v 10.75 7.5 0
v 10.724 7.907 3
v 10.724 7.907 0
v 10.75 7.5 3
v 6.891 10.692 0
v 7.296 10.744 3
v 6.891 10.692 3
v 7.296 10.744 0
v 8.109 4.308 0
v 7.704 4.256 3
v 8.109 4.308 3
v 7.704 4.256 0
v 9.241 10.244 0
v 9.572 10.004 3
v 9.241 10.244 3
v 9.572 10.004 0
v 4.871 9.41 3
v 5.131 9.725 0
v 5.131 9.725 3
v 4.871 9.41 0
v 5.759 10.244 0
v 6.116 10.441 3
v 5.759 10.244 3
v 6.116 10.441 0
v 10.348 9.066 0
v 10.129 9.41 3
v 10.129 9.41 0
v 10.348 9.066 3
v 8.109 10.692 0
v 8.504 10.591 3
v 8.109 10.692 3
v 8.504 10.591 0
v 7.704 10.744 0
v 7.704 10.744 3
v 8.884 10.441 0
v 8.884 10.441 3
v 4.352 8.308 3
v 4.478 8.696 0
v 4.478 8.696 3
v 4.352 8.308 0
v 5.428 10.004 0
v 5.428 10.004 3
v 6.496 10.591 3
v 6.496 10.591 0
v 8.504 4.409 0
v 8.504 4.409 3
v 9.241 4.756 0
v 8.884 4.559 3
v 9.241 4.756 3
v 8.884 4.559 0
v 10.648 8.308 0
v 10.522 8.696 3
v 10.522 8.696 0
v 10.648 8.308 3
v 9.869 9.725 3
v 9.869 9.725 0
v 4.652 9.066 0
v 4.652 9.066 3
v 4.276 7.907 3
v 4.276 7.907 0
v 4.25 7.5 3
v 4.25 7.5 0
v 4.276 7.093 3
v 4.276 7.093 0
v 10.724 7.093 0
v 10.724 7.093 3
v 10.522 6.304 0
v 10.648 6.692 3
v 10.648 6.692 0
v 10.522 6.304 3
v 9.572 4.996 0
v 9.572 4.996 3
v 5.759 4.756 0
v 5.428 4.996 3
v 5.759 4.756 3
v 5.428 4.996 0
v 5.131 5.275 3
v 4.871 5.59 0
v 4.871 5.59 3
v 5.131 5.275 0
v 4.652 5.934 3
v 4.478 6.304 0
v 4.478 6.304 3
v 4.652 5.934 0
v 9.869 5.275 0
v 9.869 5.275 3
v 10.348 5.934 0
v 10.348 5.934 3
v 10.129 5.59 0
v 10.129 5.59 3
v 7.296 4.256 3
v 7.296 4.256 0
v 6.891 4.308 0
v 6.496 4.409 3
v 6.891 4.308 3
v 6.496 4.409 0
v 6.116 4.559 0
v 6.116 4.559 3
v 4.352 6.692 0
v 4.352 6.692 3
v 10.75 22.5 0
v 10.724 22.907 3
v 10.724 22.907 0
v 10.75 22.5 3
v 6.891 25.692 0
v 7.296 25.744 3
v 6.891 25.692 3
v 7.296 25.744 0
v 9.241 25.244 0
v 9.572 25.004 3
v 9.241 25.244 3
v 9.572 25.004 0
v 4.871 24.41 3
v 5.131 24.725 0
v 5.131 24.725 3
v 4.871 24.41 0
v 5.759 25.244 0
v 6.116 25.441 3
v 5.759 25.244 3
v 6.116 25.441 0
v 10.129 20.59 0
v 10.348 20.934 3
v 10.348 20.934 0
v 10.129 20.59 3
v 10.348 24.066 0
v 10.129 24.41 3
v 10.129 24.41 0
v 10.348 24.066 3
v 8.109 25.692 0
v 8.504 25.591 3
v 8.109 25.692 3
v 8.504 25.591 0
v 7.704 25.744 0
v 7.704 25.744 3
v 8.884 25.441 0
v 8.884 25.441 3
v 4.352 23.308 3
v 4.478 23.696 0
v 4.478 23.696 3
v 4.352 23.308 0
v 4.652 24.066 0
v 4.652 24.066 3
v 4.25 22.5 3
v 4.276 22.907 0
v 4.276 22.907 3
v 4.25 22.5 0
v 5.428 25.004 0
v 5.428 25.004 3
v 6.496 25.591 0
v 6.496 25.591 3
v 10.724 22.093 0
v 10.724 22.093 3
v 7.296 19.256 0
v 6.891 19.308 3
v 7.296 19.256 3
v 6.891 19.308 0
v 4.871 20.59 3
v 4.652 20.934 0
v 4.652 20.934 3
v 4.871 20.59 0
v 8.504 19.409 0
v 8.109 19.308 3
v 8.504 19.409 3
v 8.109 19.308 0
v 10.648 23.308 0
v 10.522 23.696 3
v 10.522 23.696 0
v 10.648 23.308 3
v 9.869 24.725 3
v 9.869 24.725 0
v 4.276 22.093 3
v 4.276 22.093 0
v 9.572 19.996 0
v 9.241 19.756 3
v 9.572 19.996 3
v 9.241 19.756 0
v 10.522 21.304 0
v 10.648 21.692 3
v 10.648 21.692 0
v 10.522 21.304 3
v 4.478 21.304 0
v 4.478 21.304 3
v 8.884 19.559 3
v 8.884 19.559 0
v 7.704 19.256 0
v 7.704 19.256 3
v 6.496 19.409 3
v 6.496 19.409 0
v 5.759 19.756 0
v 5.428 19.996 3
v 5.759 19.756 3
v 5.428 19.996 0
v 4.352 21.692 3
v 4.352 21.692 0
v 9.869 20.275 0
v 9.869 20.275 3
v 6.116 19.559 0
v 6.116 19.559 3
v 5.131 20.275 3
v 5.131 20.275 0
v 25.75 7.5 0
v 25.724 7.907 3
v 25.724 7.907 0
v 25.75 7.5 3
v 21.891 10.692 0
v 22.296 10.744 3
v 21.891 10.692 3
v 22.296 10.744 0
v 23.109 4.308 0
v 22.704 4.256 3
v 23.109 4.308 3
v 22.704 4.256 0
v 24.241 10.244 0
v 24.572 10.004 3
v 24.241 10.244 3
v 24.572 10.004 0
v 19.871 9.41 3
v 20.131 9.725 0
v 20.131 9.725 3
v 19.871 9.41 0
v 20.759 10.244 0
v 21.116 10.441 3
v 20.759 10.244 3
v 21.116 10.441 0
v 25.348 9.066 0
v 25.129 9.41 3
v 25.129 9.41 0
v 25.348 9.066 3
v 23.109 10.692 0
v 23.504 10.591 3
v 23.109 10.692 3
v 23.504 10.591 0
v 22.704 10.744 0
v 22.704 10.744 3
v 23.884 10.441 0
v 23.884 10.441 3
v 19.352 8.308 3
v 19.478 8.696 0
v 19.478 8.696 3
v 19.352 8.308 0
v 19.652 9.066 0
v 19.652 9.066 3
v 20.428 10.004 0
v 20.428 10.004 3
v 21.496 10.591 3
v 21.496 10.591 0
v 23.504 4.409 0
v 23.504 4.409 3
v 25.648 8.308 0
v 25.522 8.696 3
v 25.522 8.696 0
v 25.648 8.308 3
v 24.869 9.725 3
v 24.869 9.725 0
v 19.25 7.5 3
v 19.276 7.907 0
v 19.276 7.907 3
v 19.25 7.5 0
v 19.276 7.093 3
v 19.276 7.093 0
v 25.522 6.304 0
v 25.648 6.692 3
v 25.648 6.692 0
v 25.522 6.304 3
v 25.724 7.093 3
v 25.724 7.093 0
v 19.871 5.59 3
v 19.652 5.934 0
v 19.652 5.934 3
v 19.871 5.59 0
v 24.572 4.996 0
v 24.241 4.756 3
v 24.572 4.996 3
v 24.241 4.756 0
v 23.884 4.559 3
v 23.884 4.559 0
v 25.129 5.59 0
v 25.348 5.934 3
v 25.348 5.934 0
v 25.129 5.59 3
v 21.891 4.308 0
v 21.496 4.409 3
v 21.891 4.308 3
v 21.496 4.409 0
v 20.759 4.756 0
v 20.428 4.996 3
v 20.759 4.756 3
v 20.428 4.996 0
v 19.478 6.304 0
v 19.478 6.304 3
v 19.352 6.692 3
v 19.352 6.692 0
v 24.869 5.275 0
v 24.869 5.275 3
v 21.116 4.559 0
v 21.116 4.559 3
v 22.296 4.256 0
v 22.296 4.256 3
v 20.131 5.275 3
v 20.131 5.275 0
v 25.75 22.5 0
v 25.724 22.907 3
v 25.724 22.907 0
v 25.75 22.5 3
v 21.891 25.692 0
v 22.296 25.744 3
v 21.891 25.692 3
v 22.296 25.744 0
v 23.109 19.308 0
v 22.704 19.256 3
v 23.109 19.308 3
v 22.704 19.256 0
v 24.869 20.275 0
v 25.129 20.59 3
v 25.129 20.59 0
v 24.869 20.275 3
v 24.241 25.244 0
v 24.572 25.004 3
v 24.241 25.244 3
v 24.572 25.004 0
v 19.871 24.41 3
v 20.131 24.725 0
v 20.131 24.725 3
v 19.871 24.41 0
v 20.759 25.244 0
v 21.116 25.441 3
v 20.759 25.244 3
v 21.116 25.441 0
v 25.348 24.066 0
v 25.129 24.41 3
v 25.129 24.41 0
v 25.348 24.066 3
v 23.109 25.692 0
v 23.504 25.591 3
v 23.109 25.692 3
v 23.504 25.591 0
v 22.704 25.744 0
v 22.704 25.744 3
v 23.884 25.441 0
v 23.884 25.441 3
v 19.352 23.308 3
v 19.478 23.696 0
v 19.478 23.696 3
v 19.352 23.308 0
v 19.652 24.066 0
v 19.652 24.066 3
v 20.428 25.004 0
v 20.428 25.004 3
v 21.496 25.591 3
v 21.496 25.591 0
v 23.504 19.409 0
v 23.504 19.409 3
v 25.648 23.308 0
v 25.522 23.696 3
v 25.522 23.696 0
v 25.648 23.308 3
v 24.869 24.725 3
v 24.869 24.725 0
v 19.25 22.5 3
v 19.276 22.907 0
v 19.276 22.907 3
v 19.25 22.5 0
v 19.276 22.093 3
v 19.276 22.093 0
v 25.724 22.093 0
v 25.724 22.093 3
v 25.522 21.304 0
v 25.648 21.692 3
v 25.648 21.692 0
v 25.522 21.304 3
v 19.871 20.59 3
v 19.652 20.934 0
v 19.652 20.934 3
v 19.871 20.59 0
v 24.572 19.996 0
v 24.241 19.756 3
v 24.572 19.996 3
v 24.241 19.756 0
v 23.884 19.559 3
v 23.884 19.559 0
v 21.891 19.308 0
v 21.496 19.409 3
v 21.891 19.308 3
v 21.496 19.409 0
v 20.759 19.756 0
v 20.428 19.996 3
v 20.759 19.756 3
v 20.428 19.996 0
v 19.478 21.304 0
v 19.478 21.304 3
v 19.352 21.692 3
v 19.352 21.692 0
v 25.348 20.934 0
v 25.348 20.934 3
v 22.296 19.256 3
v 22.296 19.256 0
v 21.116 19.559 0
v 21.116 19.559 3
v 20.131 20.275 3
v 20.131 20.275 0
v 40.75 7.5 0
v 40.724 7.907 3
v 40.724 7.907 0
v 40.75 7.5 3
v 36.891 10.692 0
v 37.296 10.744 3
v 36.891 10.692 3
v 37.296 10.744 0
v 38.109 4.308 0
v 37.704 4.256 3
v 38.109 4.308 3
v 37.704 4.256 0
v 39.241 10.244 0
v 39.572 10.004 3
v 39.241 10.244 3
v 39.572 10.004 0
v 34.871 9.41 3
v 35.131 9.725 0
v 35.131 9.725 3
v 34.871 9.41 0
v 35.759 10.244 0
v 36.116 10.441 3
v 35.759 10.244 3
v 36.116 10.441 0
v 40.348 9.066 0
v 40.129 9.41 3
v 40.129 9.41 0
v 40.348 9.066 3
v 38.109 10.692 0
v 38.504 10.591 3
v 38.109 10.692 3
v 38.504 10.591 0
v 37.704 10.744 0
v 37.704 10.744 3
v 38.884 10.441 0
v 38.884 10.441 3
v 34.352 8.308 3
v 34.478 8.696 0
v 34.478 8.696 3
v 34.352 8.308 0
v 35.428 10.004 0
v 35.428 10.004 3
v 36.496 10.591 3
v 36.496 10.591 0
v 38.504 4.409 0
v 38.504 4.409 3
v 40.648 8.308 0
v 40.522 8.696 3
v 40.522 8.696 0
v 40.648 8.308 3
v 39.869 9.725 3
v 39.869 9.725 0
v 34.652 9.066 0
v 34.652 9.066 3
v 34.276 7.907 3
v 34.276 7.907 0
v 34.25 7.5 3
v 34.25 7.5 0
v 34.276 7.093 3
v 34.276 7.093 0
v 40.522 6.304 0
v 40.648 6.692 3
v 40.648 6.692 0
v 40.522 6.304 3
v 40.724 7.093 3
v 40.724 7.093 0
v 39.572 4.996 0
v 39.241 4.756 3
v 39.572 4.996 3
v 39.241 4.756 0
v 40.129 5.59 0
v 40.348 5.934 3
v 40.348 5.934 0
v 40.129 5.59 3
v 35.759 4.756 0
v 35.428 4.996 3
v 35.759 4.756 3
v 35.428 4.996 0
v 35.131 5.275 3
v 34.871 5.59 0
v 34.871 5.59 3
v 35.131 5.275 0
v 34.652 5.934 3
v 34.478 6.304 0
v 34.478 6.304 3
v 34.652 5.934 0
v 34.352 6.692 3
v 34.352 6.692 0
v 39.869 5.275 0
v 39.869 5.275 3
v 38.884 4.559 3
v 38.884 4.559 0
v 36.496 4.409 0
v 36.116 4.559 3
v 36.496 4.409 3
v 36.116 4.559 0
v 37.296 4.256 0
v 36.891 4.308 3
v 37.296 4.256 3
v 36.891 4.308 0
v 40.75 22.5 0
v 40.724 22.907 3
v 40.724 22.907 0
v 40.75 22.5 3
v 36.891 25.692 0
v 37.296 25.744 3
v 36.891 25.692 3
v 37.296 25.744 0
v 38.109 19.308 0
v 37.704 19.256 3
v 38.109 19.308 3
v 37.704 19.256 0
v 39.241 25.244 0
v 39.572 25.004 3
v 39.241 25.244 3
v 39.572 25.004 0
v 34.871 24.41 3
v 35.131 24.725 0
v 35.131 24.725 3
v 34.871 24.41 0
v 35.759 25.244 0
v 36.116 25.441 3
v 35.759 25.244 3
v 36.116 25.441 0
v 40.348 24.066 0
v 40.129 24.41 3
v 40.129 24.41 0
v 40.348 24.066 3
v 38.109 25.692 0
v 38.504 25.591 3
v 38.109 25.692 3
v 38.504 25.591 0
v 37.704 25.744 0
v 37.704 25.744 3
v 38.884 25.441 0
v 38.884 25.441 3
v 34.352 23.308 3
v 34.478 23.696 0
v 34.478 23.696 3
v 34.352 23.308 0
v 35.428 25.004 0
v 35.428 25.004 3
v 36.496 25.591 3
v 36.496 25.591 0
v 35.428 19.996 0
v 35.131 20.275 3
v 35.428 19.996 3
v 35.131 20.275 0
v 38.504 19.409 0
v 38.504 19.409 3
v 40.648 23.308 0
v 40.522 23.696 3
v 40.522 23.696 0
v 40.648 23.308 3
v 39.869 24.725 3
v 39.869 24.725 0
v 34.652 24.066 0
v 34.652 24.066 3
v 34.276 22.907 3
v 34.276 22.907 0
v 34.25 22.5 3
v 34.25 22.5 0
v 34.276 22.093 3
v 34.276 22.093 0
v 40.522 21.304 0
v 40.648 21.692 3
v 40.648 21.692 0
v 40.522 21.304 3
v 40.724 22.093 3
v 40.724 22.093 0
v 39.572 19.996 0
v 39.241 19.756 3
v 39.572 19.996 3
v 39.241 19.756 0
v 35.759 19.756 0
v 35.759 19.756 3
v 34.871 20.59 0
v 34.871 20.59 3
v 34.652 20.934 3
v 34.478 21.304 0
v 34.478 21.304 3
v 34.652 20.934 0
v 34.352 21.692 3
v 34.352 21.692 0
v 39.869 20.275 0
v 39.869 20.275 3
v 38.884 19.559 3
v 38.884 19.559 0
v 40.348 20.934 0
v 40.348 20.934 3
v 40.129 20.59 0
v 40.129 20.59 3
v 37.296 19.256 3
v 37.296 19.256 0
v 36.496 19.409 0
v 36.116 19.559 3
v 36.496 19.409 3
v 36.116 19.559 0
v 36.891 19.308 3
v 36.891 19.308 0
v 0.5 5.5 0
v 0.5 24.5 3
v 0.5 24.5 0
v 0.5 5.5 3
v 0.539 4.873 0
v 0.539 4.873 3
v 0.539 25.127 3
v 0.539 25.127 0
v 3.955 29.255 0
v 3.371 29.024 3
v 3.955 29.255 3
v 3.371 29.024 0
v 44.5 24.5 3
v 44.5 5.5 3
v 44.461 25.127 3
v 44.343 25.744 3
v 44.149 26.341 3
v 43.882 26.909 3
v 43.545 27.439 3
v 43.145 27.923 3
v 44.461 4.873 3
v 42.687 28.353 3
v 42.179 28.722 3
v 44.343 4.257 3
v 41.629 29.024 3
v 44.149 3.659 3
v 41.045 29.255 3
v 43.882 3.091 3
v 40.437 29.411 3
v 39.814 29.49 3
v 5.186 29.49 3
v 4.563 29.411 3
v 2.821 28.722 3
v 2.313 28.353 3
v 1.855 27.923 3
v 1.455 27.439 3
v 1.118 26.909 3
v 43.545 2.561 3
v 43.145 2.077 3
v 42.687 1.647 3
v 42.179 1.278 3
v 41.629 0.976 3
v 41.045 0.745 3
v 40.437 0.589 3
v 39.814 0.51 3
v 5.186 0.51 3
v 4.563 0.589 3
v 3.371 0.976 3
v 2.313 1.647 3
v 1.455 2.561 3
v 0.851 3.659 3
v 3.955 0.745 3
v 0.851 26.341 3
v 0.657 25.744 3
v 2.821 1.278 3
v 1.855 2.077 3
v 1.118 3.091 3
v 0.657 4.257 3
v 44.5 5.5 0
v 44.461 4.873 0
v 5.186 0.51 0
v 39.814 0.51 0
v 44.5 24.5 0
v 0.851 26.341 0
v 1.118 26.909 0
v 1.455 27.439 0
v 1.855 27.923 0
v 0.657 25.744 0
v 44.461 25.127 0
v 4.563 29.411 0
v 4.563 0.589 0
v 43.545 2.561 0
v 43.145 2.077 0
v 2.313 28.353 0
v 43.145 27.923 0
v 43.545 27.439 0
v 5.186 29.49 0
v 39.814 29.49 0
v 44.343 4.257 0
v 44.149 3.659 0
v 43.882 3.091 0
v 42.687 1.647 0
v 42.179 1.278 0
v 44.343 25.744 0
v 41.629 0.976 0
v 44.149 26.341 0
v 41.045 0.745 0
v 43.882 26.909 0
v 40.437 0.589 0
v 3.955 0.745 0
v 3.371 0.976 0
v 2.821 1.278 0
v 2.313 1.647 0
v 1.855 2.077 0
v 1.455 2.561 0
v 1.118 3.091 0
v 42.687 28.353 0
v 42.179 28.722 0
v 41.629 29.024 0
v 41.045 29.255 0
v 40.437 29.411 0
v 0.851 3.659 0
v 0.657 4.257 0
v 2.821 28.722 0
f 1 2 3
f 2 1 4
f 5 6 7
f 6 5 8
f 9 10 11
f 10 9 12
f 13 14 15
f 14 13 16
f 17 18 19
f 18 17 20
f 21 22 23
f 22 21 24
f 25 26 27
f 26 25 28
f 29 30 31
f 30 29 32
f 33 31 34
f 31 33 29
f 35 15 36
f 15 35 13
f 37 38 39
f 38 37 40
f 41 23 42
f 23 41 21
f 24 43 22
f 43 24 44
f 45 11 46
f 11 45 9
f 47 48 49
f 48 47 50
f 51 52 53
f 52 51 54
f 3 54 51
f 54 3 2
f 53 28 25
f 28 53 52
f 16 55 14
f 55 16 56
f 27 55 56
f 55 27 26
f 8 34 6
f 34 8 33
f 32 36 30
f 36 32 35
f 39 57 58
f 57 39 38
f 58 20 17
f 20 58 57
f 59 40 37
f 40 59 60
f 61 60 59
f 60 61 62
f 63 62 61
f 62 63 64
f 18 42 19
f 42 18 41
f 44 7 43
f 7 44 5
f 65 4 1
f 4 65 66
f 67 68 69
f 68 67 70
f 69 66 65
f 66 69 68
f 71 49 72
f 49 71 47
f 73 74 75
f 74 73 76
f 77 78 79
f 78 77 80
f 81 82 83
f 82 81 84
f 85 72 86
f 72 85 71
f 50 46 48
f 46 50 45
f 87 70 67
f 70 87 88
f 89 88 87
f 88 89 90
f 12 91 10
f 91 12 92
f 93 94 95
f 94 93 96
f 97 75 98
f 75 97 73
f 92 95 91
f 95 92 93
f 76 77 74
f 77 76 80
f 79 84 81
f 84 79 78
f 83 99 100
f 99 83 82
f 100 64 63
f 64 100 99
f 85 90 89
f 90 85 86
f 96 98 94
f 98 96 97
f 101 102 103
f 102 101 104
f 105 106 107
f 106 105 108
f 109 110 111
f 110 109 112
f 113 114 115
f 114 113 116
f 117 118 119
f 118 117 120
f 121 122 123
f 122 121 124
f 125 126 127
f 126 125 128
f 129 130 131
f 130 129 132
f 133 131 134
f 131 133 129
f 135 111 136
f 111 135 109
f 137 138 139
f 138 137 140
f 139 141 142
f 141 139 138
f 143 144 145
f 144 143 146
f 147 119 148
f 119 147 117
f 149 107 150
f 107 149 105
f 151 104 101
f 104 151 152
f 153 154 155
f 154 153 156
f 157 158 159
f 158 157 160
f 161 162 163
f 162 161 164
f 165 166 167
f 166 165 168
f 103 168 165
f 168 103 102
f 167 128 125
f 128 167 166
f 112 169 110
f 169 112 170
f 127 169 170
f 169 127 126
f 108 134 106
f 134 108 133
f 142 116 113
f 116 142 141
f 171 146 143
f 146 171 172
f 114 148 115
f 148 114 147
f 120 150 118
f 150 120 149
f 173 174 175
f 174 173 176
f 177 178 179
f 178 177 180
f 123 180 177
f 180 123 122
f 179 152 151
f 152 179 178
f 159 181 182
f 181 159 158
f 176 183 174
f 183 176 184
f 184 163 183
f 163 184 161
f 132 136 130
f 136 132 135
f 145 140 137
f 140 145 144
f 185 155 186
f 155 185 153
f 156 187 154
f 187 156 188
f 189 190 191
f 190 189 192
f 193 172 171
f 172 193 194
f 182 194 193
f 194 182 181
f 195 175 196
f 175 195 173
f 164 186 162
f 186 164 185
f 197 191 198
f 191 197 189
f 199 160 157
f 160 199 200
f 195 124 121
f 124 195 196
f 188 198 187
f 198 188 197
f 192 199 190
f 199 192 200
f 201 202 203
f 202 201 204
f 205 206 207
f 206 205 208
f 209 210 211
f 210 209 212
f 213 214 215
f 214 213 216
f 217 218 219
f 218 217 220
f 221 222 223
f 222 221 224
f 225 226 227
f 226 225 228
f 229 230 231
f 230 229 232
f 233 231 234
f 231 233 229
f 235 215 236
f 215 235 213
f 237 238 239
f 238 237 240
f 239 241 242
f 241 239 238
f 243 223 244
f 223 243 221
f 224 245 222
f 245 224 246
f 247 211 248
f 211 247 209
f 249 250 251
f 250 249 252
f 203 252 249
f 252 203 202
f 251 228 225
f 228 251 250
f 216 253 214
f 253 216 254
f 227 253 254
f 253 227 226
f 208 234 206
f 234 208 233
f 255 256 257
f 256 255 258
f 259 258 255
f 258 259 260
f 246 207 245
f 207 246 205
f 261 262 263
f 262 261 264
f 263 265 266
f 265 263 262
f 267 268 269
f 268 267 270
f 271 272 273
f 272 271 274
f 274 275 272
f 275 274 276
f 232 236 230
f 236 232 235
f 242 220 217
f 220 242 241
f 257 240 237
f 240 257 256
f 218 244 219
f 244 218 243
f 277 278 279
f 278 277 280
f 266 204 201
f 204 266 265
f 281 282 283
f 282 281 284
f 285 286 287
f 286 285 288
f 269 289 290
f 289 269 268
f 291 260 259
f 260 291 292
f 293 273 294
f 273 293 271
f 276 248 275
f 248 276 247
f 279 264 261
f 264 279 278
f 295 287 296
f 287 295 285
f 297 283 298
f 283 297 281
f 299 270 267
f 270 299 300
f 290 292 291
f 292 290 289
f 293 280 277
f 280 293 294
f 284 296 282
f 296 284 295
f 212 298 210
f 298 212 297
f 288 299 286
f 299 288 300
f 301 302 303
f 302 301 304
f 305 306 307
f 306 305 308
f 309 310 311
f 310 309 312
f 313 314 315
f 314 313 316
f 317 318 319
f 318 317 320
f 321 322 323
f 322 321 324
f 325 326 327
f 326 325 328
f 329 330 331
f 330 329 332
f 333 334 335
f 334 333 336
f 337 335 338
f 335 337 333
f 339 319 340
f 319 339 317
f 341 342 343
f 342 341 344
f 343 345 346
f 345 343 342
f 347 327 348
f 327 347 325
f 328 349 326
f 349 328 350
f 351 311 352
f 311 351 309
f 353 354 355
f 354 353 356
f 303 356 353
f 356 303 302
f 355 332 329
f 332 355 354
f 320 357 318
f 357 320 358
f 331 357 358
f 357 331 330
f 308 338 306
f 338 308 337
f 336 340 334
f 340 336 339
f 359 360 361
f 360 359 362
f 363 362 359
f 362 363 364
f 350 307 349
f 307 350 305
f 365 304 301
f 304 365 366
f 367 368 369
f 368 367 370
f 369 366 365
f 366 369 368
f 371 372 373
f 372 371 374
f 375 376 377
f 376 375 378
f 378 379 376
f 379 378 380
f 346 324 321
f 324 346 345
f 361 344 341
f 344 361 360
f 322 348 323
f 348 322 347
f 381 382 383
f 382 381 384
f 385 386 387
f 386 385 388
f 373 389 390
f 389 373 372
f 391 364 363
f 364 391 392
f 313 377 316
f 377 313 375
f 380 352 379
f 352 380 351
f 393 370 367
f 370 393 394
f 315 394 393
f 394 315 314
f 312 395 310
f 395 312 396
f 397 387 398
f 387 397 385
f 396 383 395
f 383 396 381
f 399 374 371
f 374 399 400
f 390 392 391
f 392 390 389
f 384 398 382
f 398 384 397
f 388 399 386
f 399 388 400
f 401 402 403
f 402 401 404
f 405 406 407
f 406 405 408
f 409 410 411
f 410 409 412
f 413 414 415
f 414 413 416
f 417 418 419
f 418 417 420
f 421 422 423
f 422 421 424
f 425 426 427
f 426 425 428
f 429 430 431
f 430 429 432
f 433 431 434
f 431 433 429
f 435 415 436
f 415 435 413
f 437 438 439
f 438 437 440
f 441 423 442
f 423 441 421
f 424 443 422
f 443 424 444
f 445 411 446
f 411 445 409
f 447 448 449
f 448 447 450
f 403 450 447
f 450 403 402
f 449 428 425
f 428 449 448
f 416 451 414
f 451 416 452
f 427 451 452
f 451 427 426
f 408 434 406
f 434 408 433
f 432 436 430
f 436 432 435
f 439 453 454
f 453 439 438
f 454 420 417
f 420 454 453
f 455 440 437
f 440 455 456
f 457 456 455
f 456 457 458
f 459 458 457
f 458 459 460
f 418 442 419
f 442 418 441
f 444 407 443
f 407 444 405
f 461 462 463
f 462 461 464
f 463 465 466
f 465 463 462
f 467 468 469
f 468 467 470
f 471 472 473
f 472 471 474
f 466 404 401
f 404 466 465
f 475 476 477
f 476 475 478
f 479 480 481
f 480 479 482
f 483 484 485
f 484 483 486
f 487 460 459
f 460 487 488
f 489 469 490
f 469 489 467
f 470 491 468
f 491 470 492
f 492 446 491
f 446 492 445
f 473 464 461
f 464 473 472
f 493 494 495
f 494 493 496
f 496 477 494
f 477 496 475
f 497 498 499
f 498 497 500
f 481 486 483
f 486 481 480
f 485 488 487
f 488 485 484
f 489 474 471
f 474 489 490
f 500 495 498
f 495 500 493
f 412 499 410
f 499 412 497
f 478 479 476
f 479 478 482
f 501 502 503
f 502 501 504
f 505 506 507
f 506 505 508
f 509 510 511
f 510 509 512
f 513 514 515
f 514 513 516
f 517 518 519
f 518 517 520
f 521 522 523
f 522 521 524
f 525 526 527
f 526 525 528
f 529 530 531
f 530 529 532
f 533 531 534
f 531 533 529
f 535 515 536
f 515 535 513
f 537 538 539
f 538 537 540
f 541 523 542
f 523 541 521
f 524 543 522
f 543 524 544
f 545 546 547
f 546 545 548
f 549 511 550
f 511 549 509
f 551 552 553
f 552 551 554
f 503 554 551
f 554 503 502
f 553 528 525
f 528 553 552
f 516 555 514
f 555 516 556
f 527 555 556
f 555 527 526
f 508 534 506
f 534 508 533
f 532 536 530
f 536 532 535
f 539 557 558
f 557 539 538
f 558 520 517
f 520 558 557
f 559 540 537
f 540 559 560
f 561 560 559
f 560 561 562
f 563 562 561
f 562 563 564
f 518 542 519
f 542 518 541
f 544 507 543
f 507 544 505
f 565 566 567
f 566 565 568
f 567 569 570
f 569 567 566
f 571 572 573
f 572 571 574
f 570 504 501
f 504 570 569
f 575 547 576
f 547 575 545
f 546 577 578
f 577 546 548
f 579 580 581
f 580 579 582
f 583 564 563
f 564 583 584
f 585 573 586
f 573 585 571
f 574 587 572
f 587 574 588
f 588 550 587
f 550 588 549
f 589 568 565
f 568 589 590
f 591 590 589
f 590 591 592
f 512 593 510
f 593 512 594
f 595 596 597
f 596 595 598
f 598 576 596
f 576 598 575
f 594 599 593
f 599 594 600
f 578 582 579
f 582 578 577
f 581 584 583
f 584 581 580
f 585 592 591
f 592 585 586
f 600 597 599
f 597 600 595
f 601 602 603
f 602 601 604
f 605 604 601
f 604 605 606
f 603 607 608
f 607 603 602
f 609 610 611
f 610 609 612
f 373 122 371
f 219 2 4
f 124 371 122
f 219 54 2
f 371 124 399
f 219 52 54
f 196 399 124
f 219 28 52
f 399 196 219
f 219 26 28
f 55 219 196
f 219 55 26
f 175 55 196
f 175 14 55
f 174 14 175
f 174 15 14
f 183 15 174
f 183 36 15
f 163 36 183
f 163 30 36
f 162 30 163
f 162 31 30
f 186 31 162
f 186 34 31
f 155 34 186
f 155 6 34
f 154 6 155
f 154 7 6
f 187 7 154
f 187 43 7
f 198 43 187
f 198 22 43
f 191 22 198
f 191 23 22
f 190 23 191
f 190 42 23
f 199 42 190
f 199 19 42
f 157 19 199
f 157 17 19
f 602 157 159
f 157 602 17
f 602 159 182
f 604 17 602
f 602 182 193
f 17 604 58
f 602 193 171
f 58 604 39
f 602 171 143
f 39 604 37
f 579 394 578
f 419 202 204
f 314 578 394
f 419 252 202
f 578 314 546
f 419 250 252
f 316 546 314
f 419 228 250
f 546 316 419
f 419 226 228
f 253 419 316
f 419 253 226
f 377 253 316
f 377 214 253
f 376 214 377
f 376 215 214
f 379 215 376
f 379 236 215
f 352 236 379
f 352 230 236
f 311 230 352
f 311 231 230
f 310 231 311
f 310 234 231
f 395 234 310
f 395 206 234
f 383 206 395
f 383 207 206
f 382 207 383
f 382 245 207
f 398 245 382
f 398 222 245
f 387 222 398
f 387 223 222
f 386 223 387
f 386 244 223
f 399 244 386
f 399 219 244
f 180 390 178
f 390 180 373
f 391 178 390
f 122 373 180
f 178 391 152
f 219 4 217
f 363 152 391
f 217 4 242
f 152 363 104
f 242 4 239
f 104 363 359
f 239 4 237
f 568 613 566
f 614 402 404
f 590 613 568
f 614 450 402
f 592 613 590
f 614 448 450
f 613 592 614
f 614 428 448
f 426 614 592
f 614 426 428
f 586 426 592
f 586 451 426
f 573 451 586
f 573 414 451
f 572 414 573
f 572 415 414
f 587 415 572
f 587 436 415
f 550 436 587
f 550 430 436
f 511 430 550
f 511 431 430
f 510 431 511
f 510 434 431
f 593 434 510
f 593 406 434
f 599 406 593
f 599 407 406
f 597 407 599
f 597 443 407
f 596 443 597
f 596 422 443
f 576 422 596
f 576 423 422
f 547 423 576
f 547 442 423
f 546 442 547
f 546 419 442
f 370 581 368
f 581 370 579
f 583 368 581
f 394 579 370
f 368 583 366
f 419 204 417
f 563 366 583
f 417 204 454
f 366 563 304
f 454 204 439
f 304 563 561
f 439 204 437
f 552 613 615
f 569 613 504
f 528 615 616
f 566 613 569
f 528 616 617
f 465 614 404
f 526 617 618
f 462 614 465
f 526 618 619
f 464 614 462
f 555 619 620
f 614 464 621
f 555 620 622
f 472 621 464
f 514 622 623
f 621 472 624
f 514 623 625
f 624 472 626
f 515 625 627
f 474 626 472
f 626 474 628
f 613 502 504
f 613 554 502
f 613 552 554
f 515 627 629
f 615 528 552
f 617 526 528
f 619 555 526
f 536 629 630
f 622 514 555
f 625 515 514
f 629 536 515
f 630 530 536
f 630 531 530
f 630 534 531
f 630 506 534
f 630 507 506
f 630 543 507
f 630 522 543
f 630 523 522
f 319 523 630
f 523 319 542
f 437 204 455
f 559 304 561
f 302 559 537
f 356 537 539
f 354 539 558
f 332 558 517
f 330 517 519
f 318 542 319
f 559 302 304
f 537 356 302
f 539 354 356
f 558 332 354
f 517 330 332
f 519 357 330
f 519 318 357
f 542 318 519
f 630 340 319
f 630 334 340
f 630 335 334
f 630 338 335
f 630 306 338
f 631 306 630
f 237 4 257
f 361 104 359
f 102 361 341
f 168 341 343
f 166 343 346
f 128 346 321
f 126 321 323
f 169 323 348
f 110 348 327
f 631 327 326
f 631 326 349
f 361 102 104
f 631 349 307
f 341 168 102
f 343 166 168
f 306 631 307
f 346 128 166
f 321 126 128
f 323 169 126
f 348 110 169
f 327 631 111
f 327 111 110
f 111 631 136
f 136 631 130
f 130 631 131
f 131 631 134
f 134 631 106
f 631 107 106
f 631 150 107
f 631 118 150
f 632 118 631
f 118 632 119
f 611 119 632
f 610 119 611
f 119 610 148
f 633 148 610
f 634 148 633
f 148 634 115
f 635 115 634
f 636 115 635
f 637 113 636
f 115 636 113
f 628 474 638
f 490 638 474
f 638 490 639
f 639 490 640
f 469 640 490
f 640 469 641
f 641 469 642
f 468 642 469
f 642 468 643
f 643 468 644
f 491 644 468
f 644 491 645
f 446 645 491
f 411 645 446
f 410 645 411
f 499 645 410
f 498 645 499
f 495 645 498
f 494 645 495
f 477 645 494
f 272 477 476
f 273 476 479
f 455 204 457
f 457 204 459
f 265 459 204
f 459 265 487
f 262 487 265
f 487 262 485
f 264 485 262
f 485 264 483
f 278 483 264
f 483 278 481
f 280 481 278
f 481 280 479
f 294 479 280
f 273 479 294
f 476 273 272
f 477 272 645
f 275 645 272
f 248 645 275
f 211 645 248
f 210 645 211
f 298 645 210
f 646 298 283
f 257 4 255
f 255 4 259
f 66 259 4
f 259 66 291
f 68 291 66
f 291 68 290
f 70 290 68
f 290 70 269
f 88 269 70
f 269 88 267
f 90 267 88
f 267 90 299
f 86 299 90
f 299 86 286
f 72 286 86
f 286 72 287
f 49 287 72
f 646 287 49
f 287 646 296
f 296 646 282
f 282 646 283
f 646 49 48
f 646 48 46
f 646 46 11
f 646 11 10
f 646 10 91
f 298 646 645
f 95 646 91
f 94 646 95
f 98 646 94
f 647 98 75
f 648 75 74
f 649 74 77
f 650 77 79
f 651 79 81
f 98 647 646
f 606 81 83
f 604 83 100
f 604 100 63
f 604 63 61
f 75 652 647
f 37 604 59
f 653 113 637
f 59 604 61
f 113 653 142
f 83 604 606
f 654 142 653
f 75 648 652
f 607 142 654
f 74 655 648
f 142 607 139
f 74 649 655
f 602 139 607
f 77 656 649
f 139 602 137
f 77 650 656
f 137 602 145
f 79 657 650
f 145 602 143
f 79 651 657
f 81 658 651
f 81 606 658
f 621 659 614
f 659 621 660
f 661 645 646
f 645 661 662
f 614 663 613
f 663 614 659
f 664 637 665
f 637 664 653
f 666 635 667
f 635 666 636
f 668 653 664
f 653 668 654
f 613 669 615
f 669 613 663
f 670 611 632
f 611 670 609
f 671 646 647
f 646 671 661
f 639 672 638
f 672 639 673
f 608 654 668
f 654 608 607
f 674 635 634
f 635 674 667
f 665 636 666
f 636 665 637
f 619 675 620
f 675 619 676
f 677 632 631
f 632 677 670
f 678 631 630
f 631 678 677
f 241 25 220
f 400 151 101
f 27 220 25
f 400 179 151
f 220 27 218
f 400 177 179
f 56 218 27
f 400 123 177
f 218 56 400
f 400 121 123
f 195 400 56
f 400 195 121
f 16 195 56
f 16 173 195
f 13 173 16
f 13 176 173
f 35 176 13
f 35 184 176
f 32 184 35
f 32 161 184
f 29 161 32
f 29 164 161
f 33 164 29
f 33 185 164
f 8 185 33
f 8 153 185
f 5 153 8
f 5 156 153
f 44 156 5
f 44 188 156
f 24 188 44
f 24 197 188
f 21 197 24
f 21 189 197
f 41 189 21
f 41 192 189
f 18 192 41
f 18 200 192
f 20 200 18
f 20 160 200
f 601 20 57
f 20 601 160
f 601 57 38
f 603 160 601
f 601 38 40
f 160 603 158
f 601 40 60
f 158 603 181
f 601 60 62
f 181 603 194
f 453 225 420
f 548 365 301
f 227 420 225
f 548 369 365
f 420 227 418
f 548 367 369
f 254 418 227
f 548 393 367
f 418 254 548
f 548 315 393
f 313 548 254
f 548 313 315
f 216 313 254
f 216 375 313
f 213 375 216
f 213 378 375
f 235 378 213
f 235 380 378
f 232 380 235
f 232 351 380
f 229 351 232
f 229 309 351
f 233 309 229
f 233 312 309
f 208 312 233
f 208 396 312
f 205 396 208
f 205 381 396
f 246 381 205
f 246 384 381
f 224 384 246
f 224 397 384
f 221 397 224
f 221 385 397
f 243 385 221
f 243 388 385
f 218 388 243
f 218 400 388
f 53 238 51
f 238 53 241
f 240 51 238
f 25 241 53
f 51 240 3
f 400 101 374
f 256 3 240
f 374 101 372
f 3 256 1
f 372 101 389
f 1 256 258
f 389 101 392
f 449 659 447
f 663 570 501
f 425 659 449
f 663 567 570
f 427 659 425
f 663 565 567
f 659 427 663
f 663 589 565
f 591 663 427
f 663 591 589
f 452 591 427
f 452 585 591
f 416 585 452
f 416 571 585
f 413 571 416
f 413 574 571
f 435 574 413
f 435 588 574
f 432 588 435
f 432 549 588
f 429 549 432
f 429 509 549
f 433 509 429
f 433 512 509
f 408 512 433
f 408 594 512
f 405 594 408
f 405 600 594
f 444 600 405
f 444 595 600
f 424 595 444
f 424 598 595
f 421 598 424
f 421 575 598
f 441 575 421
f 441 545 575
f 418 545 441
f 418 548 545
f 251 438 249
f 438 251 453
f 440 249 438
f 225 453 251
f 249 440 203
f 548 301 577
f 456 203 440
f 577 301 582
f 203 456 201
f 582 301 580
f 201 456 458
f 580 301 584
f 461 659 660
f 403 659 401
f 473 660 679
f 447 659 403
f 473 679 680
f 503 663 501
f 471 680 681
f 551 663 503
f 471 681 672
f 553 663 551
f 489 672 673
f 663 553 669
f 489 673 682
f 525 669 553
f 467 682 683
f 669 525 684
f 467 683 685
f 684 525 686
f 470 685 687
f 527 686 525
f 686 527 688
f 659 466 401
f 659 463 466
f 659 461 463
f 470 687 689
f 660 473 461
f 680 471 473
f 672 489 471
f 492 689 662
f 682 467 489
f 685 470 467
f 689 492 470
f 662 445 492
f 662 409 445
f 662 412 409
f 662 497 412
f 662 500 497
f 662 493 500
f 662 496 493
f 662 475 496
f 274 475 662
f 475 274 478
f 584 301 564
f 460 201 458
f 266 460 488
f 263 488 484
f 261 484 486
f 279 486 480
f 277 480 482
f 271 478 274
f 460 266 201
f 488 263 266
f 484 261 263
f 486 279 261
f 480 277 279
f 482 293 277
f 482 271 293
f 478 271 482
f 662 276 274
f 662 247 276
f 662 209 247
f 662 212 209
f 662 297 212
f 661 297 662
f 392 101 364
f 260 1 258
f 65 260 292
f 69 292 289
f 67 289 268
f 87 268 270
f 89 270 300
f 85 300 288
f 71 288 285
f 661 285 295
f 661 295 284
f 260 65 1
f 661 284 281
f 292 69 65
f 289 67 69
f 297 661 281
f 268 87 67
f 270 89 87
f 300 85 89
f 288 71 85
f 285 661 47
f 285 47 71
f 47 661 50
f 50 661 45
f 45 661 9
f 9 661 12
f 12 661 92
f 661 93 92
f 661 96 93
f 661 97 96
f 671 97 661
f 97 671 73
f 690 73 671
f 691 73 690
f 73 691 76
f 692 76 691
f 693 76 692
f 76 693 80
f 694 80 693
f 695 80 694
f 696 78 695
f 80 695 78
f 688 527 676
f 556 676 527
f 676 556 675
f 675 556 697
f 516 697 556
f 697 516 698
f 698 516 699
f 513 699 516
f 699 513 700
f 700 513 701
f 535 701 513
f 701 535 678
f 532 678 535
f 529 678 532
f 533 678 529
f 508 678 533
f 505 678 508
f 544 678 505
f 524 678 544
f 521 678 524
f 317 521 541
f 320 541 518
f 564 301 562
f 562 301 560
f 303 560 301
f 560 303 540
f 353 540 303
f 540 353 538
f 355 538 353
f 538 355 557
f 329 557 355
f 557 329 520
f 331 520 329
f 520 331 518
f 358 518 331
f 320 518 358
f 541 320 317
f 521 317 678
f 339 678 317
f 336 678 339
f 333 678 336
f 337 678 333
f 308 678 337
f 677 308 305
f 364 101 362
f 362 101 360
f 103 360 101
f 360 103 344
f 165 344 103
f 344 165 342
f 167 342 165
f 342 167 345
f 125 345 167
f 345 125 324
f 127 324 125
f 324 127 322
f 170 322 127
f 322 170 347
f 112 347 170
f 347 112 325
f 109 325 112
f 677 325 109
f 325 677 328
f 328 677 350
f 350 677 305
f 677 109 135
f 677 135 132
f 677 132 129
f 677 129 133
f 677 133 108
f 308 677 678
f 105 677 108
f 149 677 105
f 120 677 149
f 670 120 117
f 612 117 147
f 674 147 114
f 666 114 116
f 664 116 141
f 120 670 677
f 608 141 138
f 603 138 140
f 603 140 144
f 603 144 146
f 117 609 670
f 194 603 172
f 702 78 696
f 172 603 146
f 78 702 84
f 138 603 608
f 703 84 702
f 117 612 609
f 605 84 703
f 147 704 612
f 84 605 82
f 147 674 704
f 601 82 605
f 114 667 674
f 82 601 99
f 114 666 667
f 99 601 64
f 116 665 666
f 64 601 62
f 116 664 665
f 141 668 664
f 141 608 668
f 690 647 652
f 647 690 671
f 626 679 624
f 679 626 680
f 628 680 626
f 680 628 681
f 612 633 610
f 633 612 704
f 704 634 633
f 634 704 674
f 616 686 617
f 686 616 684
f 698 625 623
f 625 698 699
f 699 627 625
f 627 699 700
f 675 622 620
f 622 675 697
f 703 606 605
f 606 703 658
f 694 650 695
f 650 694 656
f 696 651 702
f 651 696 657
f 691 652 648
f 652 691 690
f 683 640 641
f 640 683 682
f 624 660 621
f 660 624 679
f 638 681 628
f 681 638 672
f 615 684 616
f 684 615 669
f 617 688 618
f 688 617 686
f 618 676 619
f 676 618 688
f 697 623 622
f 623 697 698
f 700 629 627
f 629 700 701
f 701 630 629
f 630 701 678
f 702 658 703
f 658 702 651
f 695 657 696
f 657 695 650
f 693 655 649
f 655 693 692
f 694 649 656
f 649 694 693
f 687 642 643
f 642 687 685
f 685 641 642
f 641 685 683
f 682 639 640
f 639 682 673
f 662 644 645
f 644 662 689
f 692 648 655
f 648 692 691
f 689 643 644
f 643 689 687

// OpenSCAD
// Generated by SolidPython 1.1.3 on 2023-01-30 13:26:02
$fn = 50;


difference() {
	union() {
		translate(v = [22.5000000000, 15.0000000000, 0]) {
			rotate(a = [0, 0, 0]) {
				hull() {
					translate(v = [-17.0000000000, 9.5000000000, 0]) {
						rotate(a = [0, 0, 0]) {
							translate(v = [0, 0, 0]) {
								rotate(a = [0, 0, 0]) {
									cylinder(h = 3, r = 5);
								}
							}
						}
					}
					translate(v = [17.0000000000, 9.5000000000, 0]) {
						rotate(a = [0, 0, 0]) {
							translate(v = [0, 0, 0]) {
								rotate(a = [0, 0, 0]) {
									cylinder(h = 3, r = 5);
								}
							}
						}
					}
					translate(v = [-17.0000000000, -9.5000000000, 0]) {
						rotate(a = [0, 0, 0]) {
							translate(v = [0, 0, 0]) {
								rotate(a = [0, 0, 0]) {
									cylinder(h = 3, r = 5);
								}
							}
						}
					}
					translate(v = [17.0000000000, -9.5000000000, 0]) {
						rotate(a = [0, 0, 0]) {
							translate(v = [0, 0, 0]) {
								rotate(a = [0, 0, 0]) {
									cylinder(h = 3, r = 5);
								}
							}
						}
					}
				}
			}
		}
	}
	union() {
		translate(v = [7.5000000000, 7.5000000000, 0]) {
			rotate(a = [0, 0, 0]) {
				translate(v = [0, 0, -50]) {
					rotate(a = [0, 0, 0]) {
						cylinder(h = 100, r = 3.2500000000);
					}
				}
			}
		}
		translate(v = [7.5000000000, 22.5000000000, 0]) {
			rotate(a = [0, 0, 0]) {
				translate(v = [0, 0, -50]) {
					rotate(a = [0, 0, 0]) {
						cylinder(h = 100, r = 3.2500000000);
					}
				}
			}
		}
		translate(v = [22.5000000000, 7.5000000000, 0]) {
			rotate(a = [0, 0, 0]) {
				translate(v = [0, 0, -50]) {
					rotate(a = [0, 0, 0]) {
						cylinder(h = 100, r = 3.2500000000);
					}
				}
			}
		}
		translate(v = [22.5000000000, 22.5000000000, 0]) {
			rotate(a = [0, 0, 0]) {
				translate(v = [0, 0, -50]) {
					rotate(a = [0, 0, 0]) {
						cylinder(h = 100, r = 3.2500000000);
					}
				}
			}
		}
		translate(v = [37.5000000000, 7.5000000000, 0]) {
			rotate(a = [0, 0, 0]) {
				translate(v = [0, 0, -50]) {
					rotate(a = [0, 0, 0]) {
						cylinder(h = 100, r = 3.2500000000);
					}
				}
			}
		}
		translate(v = [37.5000000000, 22.5000000000, 0]) {
			rotate(a = [0, 0, 0]) {
				translate(v = [0, 0, -50]) {
					rotate(a = [0, 0, 0]) {
						cylinder(h = 100, r = 3.2500000000);
					}
				}
			}
		}
	}
}
/***********************************************
*********      SolidPython code:      **********
************************************************
 
from solid import *
import os
import subprocess

import oomB

import opsc_library_gen

mode = "laser"
#mode = "3d_print"

defined_objects = {}

radius_dict = {}
countersunk_dict = {}


def set_mode(m):
    global mode
    mode = m
    radius_dict['M6'] = 6.5/2
    radius_dict['M3'] = 3.3/2
    if mode == "laser":
        radius_dict['M6'] = 6/2
        radius_dict['M3'] = 3/2

    countersunk_dict['M3'] = {}
    countersunk_dict['M3']['little_rad'] = radius_dict['M3']
    countersunk_dict['M3']['big_rad'] = (5.5+0.6)/2
    if mode == "laser":
        countersunk_dict['M3']['big_rad'] = (4.75+0.6)/2
        countersunk_dict['M3']['little_rad'] = (4.75+0.6)/2

    countersunk_dict['M3']['height'] = 1.7


def opsc_make_object(filename, objects, save_type="none",resolution=50, layers = 1, tilediff = 200, mode="laser"):
    set_mode(mode)
    save_type = save_type.lower()
    os.makedirs(os.path.dirname(filename), exist_ok=True)
    final_object = opsc_get_object(objects)
    # Save the final object to the specified filename    
    scad_render_to_file(final_object, filename, file_header='$fn = %s;' % resolution, include_orig_code=True)
    if mode == "laser":
        filename_laser = filename.replace(".scad","-flat.scad")
        scad_render_to_file(getLaser(final_object, layers=layers, tilediff=tilediff), filename_laser, file_header='$fn = %s;' % resolution, include_orig_code=True)
        if save_type == "all":
            saveToAll(filename_laser)
        elif save_type == "dxf":
            saveToDxf(filename_laser)
    if save_type == "all":
        saveToAll(filename)
    elif save_type == "dxf":
        saveToDxf(filename)


def opsc_get_object(objects):
    # Create the solidpython objects
    positive_objects = [get_opsc_item(obj) for obj in objects if obj['type'] == 'positive']
    negative_objects = [get_opsc_item(obj) for obj in objects if obj['type'] == 'negative']
    # Union the positive objects
    positive_object = union()(*positive_objects)
    # Union the negative objects
    negative_object = union()(*negative_objects)
    # Create the final object by subtracting the negative objects from the positive objects
    return difference()(positive_object, negative_object)

def get_opsc_item(params):
    # A dictionary to map radius string values to numerical values
    #radius_dict = {'small': 5, 'medium': 10, 'large': 15}
    # An array of function names for basic shapes
    basic_shapes = ['cube', 'sphere', 'cylinder']
    
    # An array of function names for other shapes
    other_shapes = ['hole', 'slot', 'rounded_rectangle', 'countersunk']
    


    # Convert radius to r if present, and remove radius from the params dictionary
    if 'radius' in params:
        if isinstance(params['radius'], str):
            # Use the radius_dict to map the radius string value to a numerical value
            params['r'] = radius_dict[params['radius']]
        else:
            params['r'] = params['radius']
        del params['radius']
    

    # Check if the object type is a basic shape
    if params['shape'] in basic_shapes:
        # Remove shape and unexpected dictionary values
        allowed_keys = {'size', 'r', 'r1', 'r2', 'd', 'h', 'rw', 'rh', 'dw', 'dh'}
        shape_params = {k: v for k, v in params.items() if k in allowed_keys}

        # Call the corresponding function for the shape parameter, using ** notation to pass the shape_params dictionary as keyword arguments
        return get_opsc_transform(params,globals()[params['shape']](**shape_params))
    
    # If the object type is not a basic shape, check if it's a defined object or one of the other shapes
    elif params['shape'] in other_shapes:
        # Call the corresponding function for the shape parameter, passing the params dictionary as an argument
        p2 = copy.deepcopy(params)
        p2["pos"] = [0,0,0]
        return get_opsc_transform(params,globals()[params['shape']](p2))
    
    # If the object is not a basic shape or a defined object, try to import it from a .scad file
    else:
        obj = defined_objects[params['shape']]
        return get_opsc_transform(params,obj)

def get_opsc_transform(params, solid_obj):
    # Rotate the object based on the 'rot' field in the params dictionary, or the 'rotX', 'rotY', and 'rotZ' fields if 'rot' is not present
    rot = params.get('rot', [])
    if rot:
        rotX, rotY, rotZ = rot
    else:
        rotX = params.get('rotX', 0)
        rotY = params.get('rotY', 0)
        rotZ = params.get('rotZ', 0)
    solid_obj = rotate([rotX, rotY, rotZ])(solid_obj)

    # Translate the object based on the 'pos' field in the params dictionary, or the 'x', 'y', and 'z' fields if 'pos' is not present
    pos = params.get('pos', [])
    if pos:
        x, y, z = pos
    else:
        x = params.get('x', 0)
        y = params.get('y', 0)
        z = params.get('z', 0)
    solid_obj = translate([x, y, z])(solid_obj)
    return solid_obj


import random

def opsc_easy_array(type, shape, repeats, pos_start, shift_arr, **kwargs):
    for i in range(0,3):
        repeats.append(1)
        pos_start.append(0)
        shift_arr.append(0)
    return_objects = []

    for x in range(0,repeats[0]):
        for y in range(0,repeats[1]):
            for z in range(0,repeats[2]):
                return_objects.append(opsc_easy(type, shape, pos=[pos_start[0]+x*shift_arr[0],pos_start[1]+y*shift_arr[1],pos_start[2]+z*shift_arr[2]], **kwargs))
    return return_objects                



def opsc_easy(type, shape, **kwargs):
    obj = {
        'type': type,
        'shape': shape
    }
    for param in ['size', 'r', 'r1', 'r2', 'd', 'h', 'rw', 'rh', 'dw', 'dh', 'pos', 'x', 'y', 'z', 'rot', 'rotX', 'rotY', 'rotZ', "w"]:
        if param in kwargs:
            obj[param] = kwargs[param]
    return obj

def hole(params):
    p2 = copy.deepcopy(params)  
    # Check if the radius is a string and replace it with the corresponding value from the dictionary
    if isinstance(p2['r'], str):
        p2['r'] = radius_dict[p2['r']]
    
    # Set the height to 100 if not specified
    if 'h' not in p2:
        p2['h'] = 100
        p2["pos"] = [0,0,-50]
    p2["center"] = True
    # Create the cylinder object
    p2["shape"] = "cylinder"
    p2["type"] = "positive"

    return get_opsc_item(p2)

import copy

def countersunk(params):
    p2 = copy.deepcopy(params)
    counter_rad = p2['r']
    p2['r'] = radius_dict[p2['r']]
    hp = copy.deepcopy(p2)
    hp["type"] = "positive"
    hp["shape"] = "hole"
    del hp["rot"]
    hol = get_opsc_item(hp)
    
    cp = copy.deepcopy(p2)
    cp["h"] = countersunk_dict[counter_rad]["height"]
    cp["r2"] = countersunk_dict[counter_rad]["little_rad"]
    cp["r1"] = countersunk_dict[counter_rad]["big_rad"]
    del cp["r"]
    del cp["rot"]
    cp["type"] = "positive"
    cp["shape"] = "cylinder"
    cp["pos"] = [0,0,0]

    top = get_opsc_item(cp)
    return union()(hol,top)



def slot(params):  
    p2 = copy.deepcopy(params) 
    if isinstance(p2['r'], str):
        p2['r'] = radius_dict[p2['r']]
    p2["type"] = "positive"
    p2["shape"] = "hole"
    del p2["rot"]
    p2["pos"] = [0,0,0]
    left = copy.deepcopy(p2)
    right = copy.deepcopy(p2)
    left["pos"][0] = p2["w"] / 2 - p2["r"] 
    
    right["pos"][0] = -p2["w"] / 2 + p2["r"] 
    pass
    leftObj = get_opsc_item(left)
    rightObj = get_opsc_item(right)
    return hull()(leftObj, rightObj)

def rounded_rectangle(params):   
    p2 = copy.deepcopy(params) 
    p2["h"] = p2["size"][2]
    p2["pos"] = p2.get("pos", [0, 0, 0]) 
    p2["type"] = "positive"
    p2["shape"] = "hole"
    p2["pos"] = [0,0,0]
    
    if 'rot' in p2:
        del p2["rot"]   
    if 'r' not in p2:
        p2["r"] = 5 
    tl = copy.deepcopy(p2)
    tr = copy.deepcopy(p2)
    bl = copy.deepcopy(p2)
    br = copy.deepcopy(p2)
    tl["pos"][0] = -(p2["size"][0] - p2["r"]*2)/2
    tl["pos"][1] = (p2["size"][1] - p2["r"]*2)/2
    tr["pos"][0] = (p2["size"][0] - p2["r"]*2)/2
    tr["pos"][1] = (p2["size"][1] - p2["r"]*2)/2
    bl["pos"][0] = -(p2["size"][0] - p2["r"]*2)/2
    bl["pos"][1] = -(p2["size"][1] - p2["r"]*2)/2
    br["pos"][0] = (p2["size"][0] - p2["r"]*2)/2
    br["pos"][1] = -(p2["size"][1] - p2["r"]*2)/2
    del tl["size"]
    del tr["size"]
    del bl["size"]
    del br["size"]
    tlo = get_opsc_item(tl)
    tro = get_opsc_item(tr)
    blo = get_opsc_item(bl)
    bro = get_opsc_item(br)    
    return hull()(tlo, tro, blo, bro)



def import_scad_object(filename):
    # Import the .scad file and convert it to a solidpython object
    #filename = "parts"
    obj = import_scad(filename)
    return obj.main()
    


import os
import solid as solidpython

# A dictionary to store the defined objects


def load_scad_objects():
    opsc_library_gen.gen_library(defined_objects)

import random

def test(num_objects):
    objects = []
    for i in range(num_objects):
        # Choose a random shape
        #shape = random.choice(['cube', 'sphere', 'cylinder', 'hole', 'slot', "rounded_rectangle"])
        shape = random.choice(["rounded_rectangle"])

        # Choose a random type
        type = random.choice(['positive', 'negative'])
        
        # Create an empty object dictionary
        obj = {'shape': shape, 'type': type}
        
        # Set shape-specific parameters
        if obj['shape'] in ['cube']:
            obj['size'] =  [random.uniform(5, 15), random.uniform(5, 15), random.uniform(5, 15)]
        if obj['shape'] in ['rounded_rectangle']:
            obj['size'] =  [random.uniform(5, 15), random.uniform(5, 15), random.uniform(5, 15)]
            obj['r'] = random.uniform(0.5, 5)
        elif obj['shape'] == 'sphere':
            obj['r'] = random.uniform(5, 15)
        elif obj['shape'] in ['cylinder', 'hole']:
            obj['r'] = random.uniform(0.5, 5)
            obj['h'] = random.uniform(5, 15)
        elif obj['shape'] == 'slot':
            obj['r'] = random.uniform(0.5, 5)
            obj['h'] = random.uniform(5, 15)
            obj['w'] = random.uniform(5, 15)
        
        # Set a random position and rotation
        obj['pos'] = [random.uniform(-20, 20), random.uniform(-20, 20), random.uniform(-20, 20)]
        obj['rot'] = [random.uniform(-180, 180), random.uniform(-180, 180), random.uniform(-180, 180)]
        
        # Add the object to the list
        objects.append(obj)
    return objects

####### old file saving
def saveToAll(fileIn):
    saveToDxf(fileIn)
    saveToPng(fileIn)
    saveToStl(fileIn)
    saveToSvg(fileIn)

def saveToDxf(fileIn, fileOut="", copy_to_laser=True):
    if fileOut == "":
        fileOut = fileIn.replace(".scad",".dxf")
    saveToFile(fileIn, fileOut)


    
def saveToPng(fileIn, fileOut="",extra="--render"):
    if fileOut == "":
        fileOut = fileIn.replace(".scad",".png")
    saveToFile(fileIn, fileOut)

def saveToStl(fileIn, fileOut=""):
    if fileOut == "":
        fileOut = fileIn.replace(".scad",".stl")
    saveToFile(fileIn, fileOut)
    
def saveToSvg(fileIn, fileOut=""):
    if fileOut == "":
        fileOut = fileIn.replace(".scad",".svg")
    saveToFile(fileIn, fileOut)

def saveToFile(fileIn, fileOut,extra=""):
    #extra = extra + " --colorscheme Tomorrow"

    launchStr = 'openscad -o "' + fileOut + '"' + extra + ' "' + fileIn + '"'
    if ".png" in fileOut:
        launchStr = launchStr + " --render"
    print("            saveToFile launch string: " + launchStr)
    subprocess.run(launchStr)
    x=0

def getLaser(final_object,start=1.5,layers=1,thickness=3,tilediff=200):
        rv= []

        for x in range(layers):
            rv.append(translate([0,x*tilediff,0])(
                    projection()(
                        intersection()(translate([-500,-500,start+x*thickness])(cube(size=[1000,1000,0.1])),
                            final_object
                        )
                    )
            )
            )
            
        return union()(rv)

set_mode("laser")
load_scad_objects() 
 
************************************************/
